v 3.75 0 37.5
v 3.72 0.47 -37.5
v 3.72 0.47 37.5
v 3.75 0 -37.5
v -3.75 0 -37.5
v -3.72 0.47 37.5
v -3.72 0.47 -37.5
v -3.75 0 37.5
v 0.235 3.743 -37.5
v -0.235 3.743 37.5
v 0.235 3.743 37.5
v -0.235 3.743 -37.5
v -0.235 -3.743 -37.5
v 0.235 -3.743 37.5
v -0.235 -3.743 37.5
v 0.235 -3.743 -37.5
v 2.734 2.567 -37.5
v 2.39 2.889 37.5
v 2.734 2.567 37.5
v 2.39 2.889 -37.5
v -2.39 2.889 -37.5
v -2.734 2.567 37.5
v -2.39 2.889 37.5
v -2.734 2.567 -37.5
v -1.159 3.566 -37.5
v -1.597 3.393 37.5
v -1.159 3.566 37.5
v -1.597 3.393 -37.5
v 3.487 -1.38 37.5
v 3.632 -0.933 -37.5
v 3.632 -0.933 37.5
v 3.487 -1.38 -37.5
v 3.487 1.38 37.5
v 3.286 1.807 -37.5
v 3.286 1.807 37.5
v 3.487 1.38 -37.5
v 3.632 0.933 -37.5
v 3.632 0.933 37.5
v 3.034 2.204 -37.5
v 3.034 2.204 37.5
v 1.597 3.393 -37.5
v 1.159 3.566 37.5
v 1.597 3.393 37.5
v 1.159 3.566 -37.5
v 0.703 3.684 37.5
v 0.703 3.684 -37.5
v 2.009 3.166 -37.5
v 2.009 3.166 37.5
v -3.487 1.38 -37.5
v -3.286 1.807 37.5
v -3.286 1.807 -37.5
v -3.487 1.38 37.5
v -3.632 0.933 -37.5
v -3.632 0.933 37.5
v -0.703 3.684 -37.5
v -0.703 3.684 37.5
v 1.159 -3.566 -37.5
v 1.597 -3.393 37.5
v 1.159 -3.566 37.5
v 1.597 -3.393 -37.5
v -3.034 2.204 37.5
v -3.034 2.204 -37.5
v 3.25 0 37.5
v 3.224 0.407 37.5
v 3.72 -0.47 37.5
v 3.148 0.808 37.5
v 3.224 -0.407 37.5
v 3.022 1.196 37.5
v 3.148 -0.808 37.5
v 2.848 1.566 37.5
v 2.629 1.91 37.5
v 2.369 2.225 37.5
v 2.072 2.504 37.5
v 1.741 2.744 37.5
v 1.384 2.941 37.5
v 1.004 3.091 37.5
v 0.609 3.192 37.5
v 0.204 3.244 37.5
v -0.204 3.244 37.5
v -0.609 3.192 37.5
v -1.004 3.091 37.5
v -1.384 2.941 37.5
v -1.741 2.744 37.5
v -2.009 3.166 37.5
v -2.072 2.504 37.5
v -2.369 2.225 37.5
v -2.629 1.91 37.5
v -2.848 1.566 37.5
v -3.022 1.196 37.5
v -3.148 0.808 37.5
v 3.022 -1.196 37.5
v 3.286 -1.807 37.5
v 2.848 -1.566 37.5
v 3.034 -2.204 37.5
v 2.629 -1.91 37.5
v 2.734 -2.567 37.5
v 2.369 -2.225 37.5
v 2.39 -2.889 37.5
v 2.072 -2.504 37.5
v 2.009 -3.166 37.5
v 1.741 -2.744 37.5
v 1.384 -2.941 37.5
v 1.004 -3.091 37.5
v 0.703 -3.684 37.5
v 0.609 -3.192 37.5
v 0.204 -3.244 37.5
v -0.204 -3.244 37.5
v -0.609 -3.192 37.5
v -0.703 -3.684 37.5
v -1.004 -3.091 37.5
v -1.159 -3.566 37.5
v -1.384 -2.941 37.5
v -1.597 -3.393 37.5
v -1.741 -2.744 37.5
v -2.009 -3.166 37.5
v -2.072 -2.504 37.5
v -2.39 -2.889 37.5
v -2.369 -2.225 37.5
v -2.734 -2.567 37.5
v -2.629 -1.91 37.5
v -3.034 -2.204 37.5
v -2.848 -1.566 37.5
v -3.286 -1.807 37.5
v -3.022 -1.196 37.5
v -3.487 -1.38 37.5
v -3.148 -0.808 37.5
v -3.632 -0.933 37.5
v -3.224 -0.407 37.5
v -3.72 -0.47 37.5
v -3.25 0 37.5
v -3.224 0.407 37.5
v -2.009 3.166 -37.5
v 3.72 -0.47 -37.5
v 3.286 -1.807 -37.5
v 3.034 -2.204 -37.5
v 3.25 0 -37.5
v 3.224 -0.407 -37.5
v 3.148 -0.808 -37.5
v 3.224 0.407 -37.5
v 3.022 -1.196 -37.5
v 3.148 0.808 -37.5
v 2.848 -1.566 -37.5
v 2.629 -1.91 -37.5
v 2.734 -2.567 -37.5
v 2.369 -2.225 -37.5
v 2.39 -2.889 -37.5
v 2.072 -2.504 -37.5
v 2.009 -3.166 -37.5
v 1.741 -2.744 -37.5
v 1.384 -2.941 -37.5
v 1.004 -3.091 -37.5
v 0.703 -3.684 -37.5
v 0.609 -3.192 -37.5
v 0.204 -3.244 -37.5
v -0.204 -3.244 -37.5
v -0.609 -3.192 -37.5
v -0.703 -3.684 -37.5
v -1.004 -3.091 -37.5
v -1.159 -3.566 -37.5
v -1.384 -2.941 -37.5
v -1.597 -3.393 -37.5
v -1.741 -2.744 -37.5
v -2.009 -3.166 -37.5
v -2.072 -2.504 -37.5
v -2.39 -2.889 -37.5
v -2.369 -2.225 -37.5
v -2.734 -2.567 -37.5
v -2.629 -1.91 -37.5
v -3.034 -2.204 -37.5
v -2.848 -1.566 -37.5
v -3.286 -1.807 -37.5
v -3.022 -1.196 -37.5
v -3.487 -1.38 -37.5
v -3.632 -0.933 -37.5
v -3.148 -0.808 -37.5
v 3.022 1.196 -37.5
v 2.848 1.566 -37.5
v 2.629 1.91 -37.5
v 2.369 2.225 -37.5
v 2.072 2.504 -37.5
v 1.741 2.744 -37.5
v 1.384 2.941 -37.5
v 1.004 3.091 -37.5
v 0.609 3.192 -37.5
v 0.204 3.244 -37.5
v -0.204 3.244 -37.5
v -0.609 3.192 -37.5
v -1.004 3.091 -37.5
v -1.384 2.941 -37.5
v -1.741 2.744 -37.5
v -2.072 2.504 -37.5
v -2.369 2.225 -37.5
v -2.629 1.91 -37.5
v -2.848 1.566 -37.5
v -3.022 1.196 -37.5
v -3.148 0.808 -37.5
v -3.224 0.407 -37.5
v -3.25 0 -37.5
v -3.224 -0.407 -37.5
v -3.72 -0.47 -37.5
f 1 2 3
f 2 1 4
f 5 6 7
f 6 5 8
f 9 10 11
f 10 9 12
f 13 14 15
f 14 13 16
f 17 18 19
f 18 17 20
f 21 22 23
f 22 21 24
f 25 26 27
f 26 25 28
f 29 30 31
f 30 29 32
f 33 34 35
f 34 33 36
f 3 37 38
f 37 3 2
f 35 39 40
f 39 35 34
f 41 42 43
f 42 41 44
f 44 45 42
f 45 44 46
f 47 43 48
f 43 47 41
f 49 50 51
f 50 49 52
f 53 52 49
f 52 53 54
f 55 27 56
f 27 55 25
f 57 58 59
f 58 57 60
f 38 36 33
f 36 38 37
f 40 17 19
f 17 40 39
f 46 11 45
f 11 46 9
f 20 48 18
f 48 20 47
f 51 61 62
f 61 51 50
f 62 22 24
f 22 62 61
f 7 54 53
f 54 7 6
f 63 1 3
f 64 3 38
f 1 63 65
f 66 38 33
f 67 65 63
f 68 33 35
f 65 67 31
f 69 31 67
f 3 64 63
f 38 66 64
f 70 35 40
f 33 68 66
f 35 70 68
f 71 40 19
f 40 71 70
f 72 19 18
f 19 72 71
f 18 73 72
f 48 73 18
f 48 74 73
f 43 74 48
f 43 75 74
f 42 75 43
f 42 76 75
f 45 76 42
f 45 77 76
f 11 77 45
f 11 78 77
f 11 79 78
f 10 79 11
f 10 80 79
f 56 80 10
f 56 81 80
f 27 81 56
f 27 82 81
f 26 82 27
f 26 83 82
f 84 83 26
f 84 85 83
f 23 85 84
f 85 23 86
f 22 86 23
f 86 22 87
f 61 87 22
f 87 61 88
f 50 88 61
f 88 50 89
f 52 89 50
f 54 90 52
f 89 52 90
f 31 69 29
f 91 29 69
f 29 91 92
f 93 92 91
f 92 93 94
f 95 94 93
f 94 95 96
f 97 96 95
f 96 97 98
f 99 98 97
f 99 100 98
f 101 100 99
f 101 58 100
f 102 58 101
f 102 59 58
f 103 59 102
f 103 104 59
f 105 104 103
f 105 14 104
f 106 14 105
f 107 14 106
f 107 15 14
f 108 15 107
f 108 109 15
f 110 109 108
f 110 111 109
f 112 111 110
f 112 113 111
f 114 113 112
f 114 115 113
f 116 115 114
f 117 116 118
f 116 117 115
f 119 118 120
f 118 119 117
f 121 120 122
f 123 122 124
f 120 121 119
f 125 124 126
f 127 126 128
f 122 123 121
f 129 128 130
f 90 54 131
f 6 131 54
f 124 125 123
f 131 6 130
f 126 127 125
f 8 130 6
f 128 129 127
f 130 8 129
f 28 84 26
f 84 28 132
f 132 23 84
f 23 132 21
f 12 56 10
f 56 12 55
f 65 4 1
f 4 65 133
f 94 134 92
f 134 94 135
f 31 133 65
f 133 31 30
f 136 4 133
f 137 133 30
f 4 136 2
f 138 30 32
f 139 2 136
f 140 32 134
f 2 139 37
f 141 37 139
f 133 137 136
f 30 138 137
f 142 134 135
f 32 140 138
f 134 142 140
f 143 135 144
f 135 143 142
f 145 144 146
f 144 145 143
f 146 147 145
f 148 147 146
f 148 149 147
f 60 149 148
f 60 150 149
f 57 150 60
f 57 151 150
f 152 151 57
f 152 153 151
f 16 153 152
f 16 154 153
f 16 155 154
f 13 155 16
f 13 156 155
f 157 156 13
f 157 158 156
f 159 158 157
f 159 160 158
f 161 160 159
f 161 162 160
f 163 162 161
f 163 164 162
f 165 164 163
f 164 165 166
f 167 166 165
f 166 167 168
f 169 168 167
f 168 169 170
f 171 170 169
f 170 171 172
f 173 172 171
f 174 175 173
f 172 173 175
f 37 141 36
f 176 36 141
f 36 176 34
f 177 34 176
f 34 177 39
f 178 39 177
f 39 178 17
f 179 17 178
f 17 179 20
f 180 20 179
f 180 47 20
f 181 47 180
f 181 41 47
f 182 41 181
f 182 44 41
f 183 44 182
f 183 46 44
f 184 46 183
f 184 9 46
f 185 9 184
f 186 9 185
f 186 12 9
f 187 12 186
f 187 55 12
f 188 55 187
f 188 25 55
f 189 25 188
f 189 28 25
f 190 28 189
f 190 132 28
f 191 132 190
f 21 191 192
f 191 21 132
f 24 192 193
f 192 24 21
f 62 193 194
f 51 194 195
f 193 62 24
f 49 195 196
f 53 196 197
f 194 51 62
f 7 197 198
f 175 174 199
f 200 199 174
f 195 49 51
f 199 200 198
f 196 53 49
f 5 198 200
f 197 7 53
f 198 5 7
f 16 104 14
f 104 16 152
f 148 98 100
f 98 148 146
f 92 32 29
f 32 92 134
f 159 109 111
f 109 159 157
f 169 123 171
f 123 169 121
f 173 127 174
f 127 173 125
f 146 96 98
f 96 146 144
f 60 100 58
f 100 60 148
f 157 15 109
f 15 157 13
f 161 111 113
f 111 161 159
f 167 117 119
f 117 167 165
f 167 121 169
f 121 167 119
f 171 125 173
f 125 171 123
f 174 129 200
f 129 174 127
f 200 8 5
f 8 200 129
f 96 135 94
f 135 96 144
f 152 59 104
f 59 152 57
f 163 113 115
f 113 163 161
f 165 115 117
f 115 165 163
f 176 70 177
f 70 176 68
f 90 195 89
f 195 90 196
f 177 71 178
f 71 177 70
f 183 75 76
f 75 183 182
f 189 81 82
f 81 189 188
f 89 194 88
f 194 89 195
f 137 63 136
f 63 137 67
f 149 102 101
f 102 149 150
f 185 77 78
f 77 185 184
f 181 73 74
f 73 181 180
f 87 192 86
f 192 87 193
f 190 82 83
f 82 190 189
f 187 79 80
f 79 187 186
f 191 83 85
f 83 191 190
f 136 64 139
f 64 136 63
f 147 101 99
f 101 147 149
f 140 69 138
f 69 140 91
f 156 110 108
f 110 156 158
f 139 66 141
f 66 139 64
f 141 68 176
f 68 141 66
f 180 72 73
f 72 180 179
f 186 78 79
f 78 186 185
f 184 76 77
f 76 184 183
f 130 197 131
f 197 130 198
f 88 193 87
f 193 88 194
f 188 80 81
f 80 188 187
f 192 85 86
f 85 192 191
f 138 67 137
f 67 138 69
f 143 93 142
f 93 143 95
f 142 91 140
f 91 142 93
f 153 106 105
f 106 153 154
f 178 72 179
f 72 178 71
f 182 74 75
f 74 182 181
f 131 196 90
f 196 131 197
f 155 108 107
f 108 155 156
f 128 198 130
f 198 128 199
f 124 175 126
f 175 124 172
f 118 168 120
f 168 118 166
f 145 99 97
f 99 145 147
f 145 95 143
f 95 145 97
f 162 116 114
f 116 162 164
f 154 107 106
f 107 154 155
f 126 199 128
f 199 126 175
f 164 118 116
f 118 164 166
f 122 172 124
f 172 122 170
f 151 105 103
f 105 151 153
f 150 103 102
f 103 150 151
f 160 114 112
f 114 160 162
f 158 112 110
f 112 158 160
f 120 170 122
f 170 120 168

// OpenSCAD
$fn = 50;


difference() {
	union() {
		translate(v = [0, 0, -37.5000000000]) {
			cylinder(h = 75, r = 3.7500000000);
		}
	}
	union() {
		translate(v = [0, 0, -100.0000000000]) {
			cylinder(h = 200, r = 3.2500000000);
		}
	}
}
